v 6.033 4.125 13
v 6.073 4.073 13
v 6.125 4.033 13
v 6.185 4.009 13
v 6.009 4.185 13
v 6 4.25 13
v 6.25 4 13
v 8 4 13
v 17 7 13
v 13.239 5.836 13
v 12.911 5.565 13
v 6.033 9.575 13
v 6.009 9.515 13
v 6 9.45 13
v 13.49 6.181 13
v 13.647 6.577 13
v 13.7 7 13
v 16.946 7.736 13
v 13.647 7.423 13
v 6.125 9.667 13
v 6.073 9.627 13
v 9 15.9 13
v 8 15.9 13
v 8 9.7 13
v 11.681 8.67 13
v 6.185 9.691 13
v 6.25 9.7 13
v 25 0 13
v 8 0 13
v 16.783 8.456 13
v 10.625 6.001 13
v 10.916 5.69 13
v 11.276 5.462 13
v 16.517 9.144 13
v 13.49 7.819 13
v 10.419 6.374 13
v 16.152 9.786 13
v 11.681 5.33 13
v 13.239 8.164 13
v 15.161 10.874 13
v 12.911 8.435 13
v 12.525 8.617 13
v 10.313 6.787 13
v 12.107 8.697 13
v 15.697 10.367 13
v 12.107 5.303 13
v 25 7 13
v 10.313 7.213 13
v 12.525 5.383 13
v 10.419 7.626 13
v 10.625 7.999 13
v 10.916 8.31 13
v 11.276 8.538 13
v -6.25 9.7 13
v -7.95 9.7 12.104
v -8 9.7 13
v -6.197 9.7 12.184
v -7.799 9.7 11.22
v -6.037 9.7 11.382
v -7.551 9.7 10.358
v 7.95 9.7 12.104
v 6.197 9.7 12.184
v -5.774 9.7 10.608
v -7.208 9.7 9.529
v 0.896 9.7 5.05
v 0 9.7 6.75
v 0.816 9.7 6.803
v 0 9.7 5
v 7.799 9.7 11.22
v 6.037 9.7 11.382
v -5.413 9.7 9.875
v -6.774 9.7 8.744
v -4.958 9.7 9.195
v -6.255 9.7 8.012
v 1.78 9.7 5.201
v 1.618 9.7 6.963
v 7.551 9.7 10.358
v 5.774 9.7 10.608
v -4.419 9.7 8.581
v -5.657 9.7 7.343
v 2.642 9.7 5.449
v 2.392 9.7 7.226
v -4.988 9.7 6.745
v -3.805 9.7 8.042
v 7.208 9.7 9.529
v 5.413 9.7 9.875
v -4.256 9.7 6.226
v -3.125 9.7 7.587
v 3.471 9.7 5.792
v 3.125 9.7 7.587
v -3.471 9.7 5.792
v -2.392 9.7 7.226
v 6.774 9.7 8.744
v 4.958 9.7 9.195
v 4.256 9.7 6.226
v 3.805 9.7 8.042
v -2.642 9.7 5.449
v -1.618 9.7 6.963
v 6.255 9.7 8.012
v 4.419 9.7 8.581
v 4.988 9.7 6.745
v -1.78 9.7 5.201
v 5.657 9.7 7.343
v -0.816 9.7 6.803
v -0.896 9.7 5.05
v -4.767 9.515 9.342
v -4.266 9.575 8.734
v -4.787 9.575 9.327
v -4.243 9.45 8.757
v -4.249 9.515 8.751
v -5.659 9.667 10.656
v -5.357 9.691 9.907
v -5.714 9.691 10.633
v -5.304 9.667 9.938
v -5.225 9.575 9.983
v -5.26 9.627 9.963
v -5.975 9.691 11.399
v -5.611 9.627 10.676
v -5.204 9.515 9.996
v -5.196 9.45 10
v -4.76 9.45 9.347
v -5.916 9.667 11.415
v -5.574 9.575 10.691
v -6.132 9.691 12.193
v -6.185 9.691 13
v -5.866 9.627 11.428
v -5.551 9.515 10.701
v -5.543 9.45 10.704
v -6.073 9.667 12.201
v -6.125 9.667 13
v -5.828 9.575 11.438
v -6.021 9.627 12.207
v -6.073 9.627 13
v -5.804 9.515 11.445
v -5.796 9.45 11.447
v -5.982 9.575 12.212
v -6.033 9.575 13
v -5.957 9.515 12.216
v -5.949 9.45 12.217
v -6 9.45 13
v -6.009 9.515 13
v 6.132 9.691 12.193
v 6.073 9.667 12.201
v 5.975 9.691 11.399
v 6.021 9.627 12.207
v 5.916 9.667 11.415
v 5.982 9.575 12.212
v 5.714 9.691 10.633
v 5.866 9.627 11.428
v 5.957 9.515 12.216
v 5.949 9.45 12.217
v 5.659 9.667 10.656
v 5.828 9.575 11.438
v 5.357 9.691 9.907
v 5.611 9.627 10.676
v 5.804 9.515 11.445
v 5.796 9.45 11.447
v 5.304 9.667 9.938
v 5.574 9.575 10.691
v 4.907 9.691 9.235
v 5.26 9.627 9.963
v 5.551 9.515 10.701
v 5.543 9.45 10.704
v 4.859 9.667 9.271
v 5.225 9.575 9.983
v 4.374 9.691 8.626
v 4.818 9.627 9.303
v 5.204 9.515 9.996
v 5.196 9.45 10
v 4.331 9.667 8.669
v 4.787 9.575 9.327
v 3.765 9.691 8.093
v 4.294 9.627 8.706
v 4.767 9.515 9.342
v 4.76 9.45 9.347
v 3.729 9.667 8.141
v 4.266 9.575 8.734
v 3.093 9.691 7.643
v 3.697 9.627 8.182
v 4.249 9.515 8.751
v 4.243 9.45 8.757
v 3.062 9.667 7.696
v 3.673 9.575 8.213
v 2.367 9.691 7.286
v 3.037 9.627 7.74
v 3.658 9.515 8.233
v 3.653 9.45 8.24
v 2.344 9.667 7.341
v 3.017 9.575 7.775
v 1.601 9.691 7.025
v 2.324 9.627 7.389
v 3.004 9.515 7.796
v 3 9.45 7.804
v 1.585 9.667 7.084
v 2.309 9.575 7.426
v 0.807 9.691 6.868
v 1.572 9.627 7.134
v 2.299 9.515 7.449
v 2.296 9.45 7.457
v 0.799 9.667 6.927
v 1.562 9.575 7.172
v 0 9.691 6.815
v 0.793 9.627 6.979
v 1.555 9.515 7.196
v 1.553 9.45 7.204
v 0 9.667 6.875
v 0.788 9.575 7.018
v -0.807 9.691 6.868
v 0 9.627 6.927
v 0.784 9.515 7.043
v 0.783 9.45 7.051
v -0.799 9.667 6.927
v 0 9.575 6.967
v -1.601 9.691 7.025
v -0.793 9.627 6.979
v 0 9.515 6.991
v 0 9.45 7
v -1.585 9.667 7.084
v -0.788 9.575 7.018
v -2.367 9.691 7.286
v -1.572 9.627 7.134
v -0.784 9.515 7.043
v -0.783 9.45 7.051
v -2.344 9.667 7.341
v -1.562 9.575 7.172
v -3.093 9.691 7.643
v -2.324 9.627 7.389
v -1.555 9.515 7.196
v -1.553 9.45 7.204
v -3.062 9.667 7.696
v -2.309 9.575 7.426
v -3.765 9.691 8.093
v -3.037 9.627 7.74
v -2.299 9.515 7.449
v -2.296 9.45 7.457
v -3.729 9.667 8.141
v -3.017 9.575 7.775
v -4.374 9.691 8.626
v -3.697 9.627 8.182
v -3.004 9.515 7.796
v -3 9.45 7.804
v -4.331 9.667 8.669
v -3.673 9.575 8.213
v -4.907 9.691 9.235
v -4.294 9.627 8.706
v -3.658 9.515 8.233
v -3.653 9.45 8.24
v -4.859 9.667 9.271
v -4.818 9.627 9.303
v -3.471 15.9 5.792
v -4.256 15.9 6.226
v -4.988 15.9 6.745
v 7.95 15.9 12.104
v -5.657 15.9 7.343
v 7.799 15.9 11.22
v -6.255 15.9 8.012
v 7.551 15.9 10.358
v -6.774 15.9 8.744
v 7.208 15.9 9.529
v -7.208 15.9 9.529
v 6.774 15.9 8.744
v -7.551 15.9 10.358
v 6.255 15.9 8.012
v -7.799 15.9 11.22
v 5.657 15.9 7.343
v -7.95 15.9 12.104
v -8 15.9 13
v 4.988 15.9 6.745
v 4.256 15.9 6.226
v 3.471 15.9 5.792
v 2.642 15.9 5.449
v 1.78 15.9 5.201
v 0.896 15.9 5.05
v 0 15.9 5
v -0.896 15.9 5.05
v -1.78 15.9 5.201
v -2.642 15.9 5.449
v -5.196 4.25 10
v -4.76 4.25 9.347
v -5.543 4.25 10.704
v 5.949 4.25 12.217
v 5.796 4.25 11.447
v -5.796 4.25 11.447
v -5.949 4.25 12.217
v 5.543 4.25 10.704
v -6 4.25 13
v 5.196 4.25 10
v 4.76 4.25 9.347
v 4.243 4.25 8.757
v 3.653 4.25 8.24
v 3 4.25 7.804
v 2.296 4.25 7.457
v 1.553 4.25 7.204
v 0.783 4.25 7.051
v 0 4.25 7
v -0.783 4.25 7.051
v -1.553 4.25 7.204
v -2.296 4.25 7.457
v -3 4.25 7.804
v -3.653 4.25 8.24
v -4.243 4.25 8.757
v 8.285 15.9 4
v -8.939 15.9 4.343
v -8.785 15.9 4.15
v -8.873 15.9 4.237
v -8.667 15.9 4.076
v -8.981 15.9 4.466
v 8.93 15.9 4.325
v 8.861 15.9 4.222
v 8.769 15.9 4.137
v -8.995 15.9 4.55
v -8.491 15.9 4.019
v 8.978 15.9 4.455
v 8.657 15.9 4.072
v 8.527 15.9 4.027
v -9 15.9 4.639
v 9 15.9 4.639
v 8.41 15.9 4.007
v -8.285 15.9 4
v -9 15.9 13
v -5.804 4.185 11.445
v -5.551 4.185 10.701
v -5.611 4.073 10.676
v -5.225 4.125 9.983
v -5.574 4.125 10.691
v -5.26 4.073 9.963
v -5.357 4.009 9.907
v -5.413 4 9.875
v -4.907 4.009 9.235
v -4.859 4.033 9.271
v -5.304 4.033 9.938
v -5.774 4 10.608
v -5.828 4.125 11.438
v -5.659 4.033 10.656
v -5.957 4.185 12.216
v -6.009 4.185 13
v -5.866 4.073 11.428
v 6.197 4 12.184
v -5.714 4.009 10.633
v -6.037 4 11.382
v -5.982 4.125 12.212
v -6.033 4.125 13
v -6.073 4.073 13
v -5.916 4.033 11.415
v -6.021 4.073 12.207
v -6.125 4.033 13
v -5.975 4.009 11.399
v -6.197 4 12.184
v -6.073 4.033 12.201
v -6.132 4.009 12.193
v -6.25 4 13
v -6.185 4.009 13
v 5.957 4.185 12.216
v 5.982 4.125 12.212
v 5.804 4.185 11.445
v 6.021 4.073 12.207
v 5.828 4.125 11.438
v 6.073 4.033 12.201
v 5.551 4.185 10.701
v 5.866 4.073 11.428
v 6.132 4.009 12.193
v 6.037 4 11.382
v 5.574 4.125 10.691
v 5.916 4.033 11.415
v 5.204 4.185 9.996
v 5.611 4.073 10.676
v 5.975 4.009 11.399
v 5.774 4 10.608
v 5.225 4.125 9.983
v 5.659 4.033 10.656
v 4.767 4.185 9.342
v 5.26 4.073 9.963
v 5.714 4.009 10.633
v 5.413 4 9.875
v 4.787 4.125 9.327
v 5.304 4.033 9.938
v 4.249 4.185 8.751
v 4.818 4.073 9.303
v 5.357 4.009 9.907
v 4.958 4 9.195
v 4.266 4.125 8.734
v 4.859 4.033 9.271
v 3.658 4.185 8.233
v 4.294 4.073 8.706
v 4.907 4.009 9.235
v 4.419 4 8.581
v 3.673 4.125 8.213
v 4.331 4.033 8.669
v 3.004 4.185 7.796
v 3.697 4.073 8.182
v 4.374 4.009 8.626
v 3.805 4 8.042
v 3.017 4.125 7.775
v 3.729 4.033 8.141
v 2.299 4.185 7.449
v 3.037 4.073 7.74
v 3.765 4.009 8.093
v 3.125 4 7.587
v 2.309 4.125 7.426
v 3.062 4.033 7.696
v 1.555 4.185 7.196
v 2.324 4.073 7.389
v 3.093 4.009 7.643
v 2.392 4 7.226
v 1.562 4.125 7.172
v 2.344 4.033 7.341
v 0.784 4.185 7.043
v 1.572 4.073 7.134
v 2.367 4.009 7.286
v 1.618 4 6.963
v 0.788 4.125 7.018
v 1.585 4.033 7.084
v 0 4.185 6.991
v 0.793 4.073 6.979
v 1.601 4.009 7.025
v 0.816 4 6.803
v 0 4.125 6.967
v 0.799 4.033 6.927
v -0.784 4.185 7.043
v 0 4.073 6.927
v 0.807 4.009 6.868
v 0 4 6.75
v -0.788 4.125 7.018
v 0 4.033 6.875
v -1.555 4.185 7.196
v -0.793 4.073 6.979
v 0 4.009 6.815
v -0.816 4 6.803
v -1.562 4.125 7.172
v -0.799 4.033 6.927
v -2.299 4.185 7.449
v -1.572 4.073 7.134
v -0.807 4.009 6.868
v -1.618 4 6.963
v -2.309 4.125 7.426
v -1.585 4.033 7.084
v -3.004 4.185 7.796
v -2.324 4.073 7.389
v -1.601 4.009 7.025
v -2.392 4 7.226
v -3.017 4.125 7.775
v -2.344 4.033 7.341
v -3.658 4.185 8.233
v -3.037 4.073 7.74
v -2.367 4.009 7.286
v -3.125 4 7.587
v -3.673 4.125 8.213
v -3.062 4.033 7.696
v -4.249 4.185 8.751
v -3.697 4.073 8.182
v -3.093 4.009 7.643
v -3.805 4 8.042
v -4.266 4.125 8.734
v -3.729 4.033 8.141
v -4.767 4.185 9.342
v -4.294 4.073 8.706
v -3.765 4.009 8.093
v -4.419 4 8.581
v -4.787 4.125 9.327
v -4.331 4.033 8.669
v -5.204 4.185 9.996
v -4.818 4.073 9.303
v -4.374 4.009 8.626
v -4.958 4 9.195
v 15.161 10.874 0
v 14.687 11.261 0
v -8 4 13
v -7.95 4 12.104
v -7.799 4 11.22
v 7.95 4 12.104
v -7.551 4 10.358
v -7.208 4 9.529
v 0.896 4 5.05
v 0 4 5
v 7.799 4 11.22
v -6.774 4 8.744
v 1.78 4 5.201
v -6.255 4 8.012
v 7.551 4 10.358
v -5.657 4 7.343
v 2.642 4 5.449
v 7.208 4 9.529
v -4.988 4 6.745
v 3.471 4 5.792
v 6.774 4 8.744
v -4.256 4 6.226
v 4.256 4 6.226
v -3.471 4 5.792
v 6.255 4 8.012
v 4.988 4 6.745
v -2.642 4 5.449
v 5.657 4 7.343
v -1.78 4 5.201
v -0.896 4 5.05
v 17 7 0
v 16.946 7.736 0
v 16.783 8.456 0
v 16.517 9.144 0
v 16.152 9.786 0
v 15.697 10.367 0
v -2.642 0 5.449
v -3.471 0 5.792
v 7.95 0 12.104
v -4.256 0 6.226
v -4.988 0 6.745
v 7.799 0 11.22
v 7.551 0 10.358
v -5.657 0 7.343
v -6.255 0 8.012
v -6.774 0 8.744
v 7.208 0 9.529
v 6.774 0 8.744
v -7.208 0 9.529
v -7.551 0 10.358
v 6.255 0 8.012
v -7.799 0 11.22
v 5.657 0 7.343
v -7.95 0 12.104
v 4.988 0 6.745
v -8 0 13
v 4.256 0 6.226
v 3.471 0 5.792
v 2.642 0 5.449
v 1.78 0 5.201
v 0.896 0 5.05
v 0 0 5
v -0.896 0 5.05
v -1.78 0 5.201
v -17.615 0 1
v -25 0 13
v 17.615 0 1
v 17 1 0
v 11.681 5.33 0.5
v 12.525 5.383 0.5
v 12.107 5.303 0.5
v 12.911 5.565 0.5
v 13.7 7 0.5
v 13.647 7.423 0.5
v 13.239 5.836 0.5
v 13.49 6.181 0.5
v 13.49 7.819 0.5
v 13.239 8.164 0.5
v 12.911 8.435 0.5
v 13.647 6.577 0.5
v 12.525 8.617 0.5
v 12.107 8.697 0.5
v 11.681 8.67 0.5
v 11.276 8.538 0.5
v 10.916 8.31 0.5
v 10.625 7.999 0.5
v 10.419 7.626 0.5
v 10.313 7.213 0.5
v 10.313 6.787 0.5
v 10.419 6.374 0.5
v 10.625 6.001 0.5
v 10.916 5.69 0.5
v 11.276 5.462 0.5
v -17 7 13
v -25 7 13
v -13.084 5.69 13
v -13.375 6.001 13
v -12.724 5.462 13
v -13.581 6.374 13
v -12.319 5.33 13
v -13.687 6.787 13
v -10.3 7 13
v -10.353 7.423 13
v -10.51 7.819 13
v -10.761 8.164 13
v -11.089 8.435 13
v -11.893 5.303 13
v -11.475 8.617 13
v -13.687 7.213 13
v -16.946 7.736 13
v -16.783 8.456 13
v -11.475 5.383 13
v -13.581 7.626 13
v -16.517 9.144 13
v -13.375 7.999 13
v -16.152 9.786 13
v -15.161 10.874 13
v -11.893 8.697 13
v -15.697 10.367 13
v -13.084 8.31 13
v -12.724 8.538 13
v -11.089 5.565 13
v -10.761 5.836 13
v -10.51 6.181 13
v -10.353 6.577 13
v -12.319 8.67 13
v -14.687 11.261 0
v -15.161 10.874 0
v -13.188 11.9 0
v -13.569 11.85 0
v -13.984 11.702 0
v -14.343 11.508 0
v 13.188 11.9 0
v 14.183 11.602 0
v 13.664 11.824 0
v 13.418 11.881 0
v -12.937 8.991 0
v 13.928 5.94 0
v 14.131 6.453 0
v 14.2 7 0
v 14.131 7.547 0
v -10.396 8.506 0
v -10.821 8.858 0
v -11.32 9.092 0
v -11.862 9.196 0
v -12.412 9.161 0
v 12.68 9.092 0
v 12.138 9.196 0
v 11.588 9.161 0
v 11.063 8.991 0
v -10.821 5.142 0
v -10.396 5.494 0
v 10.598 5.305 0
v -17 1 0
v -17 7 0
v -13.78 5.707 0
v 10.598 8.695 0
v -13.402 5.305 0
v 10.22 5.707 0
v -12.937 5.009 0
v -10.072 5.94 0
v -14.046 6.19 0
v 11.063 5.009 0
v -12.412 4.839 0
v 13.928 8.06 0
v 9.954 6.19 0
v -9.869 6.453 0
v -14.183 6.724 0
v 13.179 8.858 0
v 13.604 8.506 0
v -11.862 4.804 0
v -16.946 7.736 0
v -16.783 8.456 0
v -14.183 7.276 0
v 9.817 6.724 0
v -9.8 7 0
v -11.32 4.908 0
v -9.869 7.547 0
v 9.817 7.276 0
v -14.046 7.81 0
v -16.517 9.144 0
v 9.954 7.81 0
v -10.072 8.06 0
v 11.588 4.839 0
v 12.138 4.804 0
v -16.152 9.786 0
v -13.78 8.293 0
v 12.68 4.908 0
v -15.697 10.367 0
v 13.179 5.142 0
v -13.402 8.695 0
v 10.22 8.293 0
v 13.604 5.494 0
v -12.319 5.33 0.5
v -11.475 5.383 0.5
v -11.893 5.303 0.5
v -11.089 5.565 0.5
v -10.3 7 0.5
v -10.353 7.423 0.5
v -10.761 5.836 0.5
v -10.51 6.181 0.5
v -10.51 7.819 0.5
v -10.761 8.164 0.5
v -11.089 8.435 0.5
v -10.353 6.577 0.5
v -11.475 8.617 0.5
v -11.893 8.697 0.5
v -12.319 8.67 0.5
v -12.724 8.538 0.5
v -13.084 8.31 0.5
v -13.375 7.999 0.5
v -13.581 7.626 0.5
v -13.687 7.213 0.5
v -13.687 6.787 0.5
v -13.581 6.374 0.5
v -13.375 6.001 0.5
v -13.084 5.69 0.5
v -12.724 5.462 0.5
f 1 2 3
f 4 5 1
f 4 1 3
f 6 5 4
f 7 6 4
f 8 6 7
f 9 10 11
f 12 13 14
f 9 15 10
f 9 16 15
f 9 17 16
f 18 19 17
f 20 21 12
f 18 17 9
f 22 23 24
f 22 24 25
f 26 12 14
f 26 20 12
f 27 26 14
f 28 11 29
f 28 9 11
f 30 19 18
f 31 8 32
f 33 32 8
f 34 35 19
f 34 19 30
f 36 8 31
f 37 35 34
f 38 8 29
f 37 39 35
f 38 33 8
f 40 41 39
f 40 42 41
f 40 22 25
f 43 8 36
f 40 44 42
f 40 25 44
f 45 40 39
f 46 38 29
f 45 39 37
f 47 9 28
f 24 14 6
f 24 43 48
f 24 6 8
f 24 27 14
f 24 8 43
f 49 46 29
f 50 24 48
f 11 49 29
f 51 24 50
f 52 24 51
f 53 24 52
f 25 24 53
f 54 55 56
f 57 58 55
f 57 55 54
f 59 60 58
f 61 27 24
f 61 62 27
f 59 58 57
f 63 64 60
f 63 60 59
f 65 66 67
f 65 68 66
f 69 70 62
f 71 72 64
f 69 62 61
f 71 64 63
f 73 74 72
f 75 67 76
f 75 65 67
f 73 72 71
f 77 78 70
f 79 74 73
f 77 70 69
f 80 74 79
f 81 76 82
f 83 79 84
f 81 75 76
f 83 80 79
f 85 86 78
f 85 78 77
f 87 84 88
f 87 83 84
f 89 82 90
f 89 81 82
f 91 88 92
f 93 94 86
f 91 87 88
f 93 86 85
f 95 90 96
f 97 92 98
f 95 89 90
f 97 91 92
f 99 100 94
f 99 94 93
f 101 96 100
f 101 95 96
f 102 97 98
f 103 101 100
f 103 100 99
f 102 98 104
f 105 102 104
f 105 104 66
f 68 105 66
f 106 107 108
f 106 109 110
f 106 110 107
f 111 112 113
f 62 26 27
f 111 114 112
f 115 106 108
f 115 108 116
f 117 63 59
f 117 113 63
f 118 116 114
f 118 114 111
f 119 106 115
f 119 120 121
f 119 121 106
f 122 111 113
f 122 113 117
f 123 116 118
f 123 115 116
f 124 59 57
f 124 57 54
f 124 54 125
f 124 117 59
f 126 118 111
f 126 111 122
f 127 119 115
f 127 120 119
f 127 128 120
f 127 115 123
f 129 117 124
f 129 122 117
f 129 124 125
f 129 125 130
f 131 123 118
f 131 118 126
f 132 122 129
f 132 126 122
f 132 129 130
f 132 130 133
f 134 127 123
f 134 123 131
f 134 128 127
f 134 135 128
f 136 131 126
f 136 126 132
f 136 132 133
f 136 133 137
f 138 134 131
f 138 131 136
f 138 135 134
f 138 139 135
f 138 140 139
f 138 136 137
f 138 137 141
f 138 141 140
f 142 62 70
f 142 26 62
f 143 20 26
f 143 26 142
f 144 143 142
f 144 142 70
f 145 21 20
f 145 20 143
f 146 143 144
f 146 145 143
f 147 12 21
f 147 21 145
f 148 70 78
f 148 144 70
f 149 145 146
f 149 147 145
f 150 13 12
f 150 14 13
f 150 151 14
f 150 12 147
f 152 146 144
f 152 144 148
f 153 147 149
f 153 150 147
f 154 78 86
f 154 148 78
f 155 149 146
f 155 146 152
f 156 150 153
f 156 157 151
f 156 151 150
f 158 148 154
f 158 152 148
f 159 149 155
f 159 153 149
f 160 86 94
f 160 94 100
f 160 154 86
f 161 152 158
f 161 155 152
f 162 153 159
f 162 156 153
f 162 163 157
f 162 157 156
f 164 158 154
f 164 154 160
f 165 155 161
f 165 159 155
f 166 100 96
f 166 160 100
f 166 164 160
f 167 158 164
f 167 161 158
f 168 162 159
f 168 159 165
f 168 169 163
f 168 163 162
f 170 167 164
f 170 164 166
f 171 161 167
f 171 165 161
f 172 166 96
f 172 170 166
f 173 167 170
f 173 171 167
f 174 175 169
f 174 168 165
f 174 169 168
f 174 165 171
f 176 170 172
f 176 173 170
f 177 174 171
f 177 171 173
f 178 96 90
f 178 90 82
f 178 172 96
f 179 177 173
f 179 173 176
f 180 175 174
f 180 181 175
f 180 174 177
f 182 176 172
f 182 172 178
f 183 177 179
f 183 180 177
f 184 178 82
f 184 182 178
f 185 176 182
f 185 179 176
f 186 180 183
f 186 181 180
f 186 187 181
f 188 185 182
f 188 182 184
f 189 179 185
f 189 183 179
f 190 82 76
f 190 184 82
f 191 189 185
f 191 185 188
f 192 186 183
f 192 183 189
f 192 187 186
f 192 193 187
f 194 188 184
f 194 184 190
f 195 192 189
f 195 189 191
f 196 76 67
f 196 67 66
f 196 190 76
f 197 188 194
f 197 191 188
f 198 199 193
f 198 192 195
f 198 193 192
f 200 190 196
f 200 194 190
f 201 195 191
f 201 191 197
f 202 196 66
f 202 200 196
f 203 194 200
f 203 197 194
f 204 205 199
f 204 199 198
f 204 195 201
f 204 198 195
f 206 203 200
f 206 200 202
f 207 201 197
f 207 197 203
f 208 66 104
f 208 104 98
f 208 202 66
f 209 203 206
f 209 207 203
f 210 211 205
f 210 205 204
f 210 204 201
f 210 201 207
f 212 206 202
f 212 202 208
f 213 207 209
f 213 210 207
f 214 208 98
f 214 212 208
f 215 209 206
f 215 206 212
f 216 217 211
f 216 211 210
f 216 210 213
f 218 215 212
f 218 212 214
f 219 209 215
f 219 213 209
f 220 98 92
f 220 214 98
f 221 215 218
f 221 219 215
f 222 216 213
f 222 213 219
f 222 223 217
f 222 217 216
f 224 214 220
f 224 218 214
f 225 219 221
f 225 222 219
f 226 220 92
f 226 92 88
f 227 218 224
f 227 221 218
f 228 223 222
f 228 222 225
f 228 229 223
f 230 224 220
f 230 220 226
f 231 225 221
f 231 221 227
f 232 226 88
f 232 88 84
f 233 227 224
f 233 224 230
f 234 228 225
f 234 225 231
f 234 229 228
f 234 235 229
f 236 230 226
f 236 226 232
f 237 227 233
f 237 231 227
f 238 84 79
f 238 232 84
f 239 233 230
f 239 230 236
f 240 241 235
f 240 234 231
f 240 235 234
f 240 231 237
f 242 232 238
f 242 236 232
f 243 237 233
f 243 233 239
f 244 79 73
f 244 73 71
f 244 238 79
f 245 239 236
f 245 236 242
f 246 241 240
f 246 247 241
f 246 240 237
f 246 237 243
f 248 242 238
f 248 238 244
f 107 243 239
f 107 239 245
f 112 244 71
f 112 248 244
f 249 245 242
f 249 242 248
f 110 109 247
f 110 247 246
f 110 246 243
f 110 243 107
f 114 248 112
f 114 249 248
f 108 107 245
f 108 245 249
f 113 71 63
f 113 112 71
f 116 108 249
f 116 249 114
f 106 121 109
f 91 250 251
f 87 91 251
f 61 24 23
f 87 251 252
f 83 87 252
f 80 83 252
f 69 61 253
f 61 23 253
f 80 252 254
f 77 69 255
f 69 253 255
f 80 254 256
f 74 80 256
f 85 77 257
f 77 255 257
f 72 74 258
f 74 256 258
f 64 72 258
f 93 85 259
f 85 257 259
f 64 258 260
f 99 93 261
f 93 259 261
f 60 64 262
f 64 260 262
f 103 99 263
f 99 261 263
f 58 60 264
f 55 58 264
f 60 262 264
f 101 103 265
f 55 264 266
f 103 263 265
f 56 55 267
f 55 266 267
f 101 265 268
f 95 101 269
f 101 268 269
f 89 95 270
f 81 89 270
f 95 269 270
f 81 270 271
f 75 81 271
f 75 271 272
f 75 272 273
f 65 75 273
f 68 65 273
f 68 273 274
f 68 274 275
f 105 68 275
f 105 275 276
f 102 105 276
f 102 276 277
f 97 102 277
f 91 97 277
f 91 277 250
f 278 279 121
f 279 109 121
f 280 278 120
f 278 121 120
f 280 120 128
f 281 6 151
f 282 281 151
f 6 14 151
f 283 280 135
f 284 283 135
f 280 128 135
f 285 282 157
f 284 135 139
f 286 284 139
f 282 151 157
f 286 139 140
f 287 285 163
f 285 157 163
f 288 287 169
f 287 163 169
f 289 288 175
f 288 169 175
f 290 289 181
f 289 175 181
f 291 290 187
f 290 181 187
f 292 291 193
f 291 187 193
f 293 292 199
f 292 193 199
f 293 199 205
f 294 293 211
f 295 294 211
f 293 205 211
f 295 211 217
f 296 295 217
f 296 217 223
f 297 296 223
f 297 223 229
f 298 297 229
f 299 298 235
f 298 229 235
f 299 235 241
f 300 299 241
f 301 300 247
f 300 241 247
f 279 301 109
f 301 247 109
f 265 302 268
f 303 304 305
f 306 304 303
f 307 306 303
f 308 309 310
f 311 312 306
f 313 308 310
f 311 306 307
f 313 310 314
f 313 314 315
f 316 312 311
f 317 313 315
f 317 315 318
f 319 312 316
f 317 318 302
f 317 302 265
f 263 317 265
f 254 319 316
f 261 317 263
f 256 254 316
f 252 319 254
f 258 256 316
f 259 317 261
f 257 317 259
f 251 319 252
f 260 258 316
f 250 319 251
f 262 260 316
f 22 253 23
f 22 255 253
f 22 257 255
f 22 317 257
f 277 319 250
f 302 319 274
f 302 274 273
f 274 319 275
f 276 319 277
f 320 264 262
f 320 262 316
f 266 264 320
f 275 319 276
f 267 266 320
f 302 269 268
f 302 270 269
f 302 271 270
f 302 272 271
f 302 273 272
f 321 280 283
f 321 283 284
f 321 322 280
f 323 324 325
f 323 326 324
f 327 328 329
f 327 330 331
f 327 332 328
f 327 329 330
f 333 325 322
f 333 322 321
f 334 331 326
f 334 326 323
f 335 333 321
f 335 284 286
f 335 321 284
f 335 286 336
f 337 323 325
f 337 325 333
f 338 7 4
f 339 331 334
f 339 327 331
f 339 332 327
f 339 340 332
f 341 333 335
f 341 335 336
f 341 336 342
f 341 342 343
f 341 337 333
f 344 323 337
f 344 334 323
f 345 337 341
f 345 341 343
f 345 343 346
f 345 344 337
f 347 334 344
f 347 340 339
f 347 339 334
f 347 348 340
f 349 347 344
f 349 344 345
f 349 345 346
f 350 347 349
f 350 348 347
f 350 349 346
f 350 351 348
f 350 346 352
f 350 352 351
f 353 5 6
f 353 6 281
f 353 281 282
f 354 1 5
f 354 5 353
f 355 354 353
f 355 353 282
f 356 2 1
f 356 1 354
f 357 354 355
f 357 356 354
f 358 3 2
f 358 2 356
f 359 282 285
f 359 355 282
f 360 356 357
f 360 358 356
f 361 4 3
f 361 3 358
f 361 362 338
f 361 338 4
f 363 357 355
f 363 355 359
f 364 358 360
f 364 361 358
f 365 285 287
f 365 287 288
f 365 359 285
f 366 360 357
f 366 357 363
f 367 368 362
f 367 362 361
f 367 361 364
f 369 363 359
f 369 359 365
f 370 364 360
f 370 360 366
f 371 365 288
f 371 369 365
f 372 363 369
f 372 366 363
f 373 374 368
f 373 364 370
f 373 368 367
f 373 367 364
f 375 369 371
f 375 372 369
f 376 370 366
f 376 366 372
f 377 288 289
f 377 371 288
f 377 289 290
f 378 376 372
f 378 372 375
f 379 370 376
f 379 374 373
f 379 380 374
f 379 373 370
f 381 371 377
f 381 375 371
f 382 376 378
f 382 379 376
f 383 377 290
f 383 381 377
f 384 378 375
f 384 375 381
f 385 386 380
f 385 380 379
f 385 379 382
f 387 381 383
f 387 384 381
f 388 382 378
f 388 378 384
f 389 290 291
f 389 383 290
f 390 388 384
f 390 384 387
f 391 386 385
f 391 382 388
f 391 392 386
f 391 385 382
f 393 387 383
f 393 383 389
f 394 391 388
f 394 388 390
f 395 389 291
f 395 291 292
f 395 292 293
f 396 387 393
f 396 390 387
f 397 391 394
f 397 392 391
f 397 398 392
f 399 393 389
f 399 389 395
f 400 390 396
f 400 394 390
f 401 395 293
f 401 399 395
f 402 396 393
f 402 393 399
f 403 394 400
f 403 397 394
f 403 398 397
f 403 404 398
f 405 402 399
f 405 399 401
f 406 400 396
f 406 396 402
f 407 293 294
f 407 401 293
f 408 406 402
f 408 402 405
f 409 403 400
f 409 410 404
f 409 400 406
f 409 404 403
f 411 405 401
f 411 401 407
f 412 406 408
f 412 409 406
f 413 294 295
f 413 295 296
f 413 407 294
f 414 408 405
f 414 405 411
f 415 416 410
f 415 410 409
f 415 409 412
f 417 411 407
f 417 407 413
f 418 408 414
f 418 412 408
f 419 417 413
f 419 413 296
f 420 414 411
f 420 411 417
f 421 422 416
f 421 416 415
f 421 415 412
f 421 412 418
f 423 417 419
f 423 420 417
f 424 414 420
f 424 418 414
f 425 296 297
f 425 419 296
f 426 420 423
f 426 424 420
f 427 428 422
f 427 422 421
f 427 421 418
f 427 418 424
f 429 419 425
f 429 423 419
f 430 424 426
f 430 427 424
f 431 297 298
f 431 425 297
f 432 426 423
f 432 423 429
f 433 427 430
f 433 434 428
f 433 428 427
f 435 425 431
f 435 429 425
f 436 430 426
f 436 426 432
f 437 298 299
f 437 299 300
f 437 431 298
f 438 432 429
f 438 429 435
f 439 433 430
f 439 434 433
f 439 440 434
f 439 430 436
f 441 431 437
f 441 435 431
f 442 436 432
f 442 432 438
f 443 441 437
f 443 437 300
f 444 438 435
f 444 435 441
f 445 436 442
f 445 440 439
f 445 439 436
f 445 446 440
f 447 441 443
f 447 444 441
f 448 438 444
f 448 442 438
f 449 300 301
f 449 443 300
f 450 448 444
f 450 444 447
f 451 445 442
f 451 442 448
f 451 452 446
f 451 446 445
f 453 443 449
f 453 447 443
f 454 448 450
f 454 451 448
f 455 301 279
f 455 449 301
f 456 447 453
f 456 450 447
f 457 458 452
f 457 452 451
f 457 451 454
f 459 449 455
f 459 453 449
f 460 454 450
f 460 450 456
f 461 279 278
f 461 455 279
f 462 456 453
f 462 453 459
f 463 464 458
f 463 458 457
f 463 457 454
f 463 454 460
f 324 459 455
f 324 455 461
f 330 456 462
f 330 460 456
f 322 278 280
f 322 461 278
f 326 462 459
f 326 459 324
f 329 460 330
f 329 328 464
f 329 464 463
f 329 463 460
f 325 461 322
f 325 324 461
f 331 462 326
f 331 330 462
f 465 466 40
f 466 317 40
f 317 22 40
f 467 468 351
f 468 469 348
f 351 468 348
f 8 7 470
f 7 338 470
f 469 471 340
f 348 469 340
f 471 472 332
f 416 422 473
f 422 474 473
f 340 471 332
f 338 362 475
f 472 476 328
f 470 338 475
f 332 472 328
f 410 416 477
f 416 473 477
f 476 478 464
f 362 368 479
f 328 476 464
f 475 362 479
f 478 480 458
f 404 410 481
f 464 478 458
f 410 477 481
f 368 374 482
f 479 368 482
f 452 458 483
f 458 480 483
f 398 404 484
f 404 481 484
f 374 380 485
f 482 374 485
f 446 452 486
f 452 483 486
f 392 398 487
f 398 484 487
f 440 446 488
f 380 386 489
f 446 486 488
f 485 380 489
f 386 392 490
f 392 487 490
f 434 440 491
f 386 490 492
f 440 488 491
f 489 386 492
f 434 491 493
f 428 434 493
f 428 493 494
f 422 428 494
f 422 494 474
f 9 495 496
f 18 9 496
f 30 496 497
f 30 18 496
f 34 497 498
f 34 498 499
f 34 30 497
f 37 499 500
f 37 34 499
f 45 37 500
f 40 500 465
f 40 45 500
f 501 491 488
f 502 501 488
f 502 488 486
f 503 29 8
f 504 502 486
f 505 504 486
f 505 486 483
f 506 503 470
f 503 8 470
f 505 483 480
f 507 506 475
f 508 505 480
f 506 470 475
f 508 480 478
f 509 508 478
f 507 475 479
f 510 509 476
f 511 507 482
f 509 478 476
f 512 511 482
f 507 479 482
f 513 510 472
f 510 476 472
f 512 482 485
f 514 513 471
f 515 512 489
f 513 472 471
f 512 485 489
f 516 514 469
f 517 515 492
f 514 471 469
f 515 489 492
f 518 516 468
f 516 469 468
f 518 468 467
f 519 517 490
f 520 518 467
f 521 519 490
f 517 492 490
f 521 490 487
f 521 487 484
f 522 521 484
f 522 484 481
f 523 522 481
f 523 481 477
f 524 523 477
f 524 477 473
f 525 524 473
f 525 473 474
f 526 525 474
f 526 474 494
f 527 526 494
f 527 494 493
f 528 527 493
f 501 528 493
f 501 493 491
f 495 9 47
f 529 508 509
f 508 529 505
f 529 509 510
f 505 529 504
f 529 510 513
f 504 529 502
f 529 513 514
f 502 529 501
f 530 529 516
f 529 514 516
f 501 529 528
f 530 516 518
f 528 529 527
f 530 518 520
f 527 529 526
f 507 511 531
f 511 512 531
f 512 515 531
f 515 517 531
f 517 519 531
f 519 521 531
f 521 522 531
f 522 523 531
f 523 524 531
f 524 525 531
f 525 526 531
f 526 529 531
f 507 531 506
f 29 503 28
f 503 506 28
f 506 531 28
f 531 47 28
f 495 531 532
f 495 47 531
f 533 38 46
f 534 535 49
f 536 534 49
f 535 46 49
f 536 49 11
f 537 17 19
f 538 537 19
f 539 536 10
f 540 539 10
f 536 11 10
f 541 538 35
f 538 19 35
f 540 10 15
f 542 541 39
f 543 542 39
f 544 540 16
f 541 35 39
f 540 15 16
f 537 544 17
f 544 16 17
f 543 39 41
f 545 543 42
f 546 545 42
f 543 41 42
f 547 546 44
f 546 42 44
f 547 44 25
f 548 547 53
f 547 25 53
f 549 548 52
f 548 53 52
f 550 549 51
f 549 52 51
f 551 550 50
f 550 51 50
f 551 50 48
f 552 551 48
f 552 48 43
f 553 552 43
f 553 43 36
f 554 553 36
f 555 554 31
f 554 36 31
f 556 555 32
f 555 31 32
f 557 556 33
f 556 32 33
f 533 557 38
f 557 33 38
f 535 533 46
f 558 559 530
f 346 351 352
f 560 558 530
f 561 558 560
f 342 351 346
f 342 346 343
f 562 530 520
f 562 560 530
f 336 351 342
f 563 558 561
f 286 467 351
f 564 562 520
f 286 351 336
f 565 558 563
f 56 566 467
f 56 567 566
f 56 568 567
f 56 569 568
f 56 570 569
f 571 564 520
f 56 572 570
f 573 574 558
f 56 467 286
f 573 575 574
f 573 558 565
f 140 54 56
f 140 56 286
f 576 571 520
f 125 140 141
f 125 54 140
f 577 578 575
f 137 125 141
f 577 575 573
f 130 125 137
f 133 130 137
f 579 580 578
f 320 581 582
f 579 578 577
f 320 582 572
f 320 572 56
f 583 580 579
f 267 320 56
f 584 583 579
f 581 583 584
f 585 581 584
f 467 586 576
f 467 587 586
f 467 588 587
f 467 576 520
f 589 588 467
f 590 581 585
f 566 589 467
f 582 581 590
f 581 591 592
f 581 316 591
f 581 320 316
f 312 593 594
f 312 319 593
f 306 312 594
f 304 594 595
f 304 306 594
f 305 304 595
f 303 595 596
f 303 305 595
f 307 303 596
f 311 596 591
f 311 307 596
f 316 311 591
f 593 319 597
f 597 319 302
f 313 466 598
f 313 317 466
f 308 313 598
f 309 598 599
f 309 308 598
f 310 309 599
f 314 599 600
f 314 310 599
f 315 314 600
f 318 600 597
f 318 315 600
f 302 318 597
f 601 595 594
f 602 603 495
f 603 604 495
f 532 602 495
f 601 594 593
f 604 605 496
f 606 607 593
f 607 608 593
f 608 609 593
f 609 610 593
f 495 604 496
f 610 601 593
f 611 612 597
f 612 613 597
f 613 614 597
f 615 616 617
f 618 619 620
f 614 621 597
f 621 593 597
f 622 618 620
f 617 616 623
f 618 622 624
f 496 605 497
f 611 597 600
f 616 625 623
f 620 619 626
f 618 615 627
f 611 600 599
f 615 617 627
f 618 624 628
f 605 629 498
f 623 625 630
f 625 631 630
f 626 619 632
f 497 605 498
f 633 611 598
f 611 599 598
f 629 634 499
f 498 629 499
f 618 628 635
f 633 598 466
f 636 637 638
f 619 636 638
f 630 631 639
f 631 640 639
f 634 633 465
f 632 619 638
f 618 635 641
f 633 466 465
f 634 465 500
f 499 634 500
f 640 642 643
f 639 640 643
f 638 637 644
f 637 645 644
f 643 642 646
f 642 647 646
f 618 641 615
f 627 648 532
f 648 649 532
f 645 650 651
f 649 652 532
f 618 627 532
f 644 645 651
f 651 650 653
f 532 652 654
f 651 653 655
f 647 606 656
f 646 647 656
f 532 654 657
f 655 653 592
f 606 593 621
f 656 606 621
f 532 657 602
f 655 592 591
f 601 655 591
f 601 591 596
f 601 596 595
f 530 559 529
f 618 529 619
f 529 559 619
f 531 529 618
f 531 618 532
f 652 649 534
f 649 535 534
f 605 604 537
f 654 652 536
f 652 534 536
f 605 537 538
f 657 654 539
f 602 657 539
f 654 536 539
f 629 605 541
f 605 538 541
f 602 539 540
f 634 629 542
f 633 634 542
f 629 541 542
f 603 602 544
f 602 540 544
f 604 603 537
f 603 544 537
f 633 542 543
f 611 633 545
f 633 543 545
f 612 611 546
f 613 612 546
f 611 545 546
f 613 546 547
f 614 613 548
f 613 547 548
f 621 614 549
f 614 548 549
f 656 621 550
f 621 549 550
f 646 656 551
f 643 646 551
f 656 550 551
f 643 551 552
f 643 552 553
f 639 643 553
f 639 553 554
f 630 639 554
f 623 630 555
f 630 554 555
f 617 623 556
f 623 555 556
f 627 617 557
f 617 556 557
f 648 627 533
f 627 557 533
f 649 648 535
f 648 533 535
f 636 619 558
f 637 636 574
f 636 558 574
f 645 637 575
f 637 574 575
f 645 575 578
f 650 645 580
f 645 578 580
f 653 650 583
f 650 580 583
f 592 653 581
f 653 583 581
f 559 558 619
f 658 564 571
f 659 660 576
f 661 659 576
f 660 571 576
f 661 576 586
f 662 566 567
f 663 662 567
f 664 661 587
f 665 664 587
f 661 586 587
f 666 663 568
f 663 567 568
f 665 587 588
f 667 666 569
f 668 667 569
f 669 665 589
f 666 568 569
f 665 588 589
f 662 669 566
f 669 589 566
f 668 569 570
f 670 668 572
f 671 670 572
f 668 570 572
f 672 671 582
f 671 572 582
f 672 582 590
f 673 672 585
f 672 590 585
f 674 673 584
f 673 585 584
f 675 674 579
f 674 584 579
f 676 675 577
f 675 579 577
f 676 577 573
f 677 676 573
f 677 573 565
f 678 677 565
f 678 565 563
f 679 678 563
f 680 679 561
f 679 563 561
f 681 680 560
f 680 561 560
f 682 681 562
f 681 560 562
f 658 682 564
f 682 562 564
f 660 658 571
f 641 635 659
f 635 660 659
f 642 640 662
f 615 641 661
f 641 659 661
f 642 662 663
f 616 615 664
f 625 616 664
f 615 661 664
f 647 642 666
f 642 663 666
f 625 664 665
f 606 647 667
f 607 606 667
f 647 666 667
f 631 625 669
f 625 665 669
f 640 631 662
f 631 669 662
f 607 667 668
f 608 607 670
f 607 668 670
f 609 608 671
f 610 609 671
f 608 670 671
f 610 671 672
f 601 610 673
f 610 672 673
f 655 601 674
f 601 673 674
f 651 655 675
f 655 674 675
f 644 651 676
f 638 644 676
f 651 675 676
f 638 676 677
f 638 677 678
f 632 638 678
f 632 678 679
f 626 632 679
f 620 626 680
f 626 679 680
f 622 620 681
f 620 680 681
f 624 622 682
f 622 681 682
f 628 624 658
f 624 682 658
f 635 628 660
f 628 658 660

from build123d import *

# Parameters (mm, degrees)
CYLINDER005_R          = 1.7
CYLINDER005_DEPTH      = 20
CYLINDER004_R          = 1.7
CYLINDER004_DEPTH      = 36.75
CYLINDER003_R          = 1.7
CYLINDER003_DEPTH      = 39.75
CYLINDER006_R          = 1.7
CYLINDER006_DEPTH      = 20
CYLINDER001_R          = 8
CYLINDER001_DEPTH      = 5
CYLINDER001_ROLL_ANGLE = -90
CYLINDER_R             = 6
CYLINDER_DEPTH         = 30
CYLINDER_ROLL_ANGLE    = -90
CYLINDER002_R          = 8
CYLINDER002_DEPTH      = 12
CYLINDER002_ROLL_ANGLE = -90
BOX_W                  = 50
BOX_H                  = 15.9
BOX_DEPTH              = 13
POCKET_DEPTH           = 121.108539
CHAMFER_SIZE           = 4
FILLET_R               = 1
POCKET001_DEPTH        = 115.108539
CHAMFER001_SIZE        = 1
CHAMFER002_SIZE        = 0.5
FILLET001_R            = 0.25


with BuildPart() as cilindro005:
    # Cylinder005 → Cylinder005 (new body)
    with BuildSketch(Plane(origin=(-12, 7, 11), x_dir=(1, 0, 0), z_dir=(0, 0, 1))):
        Circle(CYLINDER005_R)
    extrude(amount=CYLINDER005_DEPTH)


with BuildPart() as cilindro004:
    # Cylinder004 → Cylinder004 (new body)
    with BuildSketch(Plane(origin=(-12, 7, 0), x_dir=(1, 0, 0), z_dir=(0, 0, 1))):
        Circle(CYLINDER004_R)
    extrude(amount=CYLINDER004_DEPTH)


with BuildPart() as cilindro003:
    # Cylinder003 → Cylinder003 (new body)
    with BuildSketch(Plane(origin=(12, 7, 0), x_dir=(1, 0, 0), z_dir=(0, 0, 1))):
        Circle(CYLINDER003_R)
    extrude(amount=CYLINDER003_DEPTH)


with BuildPart() as tornillos:
    # Cylinder006 → Cylinder006 (new body)
    with BuildSketch(Plane(origin=(12, 7, 11), x_dir=(1, 0, 0), z_dir=(0, 0, 1))):
        Circle(CYLINDER006_R)
    extrude(amount=CYLINDER006_DEPTH)

    # Fusion001: union Cilindro005, Cilindro004, Cilindro003
    add(cilindro005.part)
    add(cilindro004.part)
    add(cilindro003.part)


with BuildPart() as cilindro001:
    # Cylinder001 → Cylinder001 (new body)
    with BuildSketch(Plane.XY):
        Circle(CYLINDER001_R)
    extrude(amount=CYLINDER001_DEPTH)


with BuildPart() as cilindro001_1:
    # Cylinder001 roll: moved
    add(cilindro001.part.rotate(Axis((0, 0, 0), (1, 0, 0)), CYLINDER001_ROLL_ANGLE))


with BuildPart() as cilindro001_2:
    # Cylinder001 placement: moved
    add(cilindro001_1.part.moved(Location((0, -1, 13))))


with BuildPart() as cilindro:
    # Cylinder → Cylinder (new body)
    with BuildSketch(Plane.XY):
        Circle(CYLINDER_R)
    extrude(amount=CYLINDER_DEPTH)


with BuildPart() as cilindro_1:
    # Cylinder roll: moved
    add(cilindro.part.rotate(Axis((0, 0, 0), (1, 0, 0)), CYLINDER_ROLL_ANGLE))


with BuildPart() as cilindro_2:
    # Cylinder placement: moved
    add(cilindro_1.part.moved(Location((0, -5, 13))))


with BuildPart() as cabeza_hot_end:
    # Cylinder002 → Cylinder002 (new body)
    with BuildSketch(Plane.XY):
        Circle(CYLINDER002_R)
    extrude(amount=CYLINDER002_DEPTH)


with BuildPart() as cabeza_hot_end_1:
    # Cylinder002 roll: moved
    add(cabeza_hot_end.part.rotate(Axis((0, 0, 0), (1, 0, 0)), CYLINDER002_ROLL_ANGLE))


with BuildPart() as cabeza_hot_end_2:
    # Cylinder002 placement: moved
    add(cabeza_hot_end_1.part.moved(Location((0, 9.7, 13))))

    # Fusion: union Cilindro001, Cilindro
    add(cilindro001_2.part)
    add(cilindro_2.part)


with BuildPart() as fillet001:
    # Box → Box (new body)
    with BuildSketch(Plane(origin=(-25, 0, 0), x_dir=(1, 0, 0), z_dir=(0, 0, 1))):
        with Locations((25, 7.95)):
            Rectangle(BOX_W, BOX_H)
    extrude(amount=BOX_DEPTH)

    # Cut: cut cabeza_hot_end
    add(cabeza_hot_end_2.part, mode=Mode.SUBTRACT)

    # Cut001: cut tornillos
    add(tornillos.part, mode=Mode.SUBTRACT)

    # Sketch → Pocket (cut, through all)
    with BuildSketch(Plane.XY.offset(13)):
        with BuildLine():
            ThreePointArc((17, 7), (16.5168, 9.144415), (15.160594, 10.874357))
            Line((9, 15.9), (15.160594, 10.874357))
            Line((25, 15.9), (9, 15.9))
            Line((25, 7), (25, 15.9))
            Line((17, 7), (25, 7))
        make_face()
    pocket = extrude(amount=-POCKET_DEPTH, mode=Mode.SUBTRACT)

    # Mirrored: Pocket across Sketch V_Axis
    add(pocket.mirror(Plane(origin=(0, 0, 13), x_dir=(0, 0, 1), z_dir=(1, 0, 0))), mode=Mode.SUBTRACT)

    # Chamfer
    chamfer_edges = [fillet001.edges().sort_by_distance(p)[0] for p in [
        (0, 15.9, 0),
    ]]
    chamfer(chamfer_edges, length=CHAMFER_SIZE)

    # Fillet
    fillet_edges = [fillet001.edges().sort_by_distance(p)[0] for p in [
        (11.451664, 13.9, 2),
        (-11.451664, 13.9, 2),
    ]]
    fillet(fillet_edges, radius=FILLET_R)

    # Sketch002 → Pocket001 (cut, through all)
    with BuildSketch(Plane(origin=(0, 7, 0), x_dir=(-1, 0, 0), z_dir=(0, 1, 0))):
        Polygon((-25, 13), (-17, 0), (-25, 0), align=None)
    pocket001 = extrude(amount=-POCKET001_DEPTH, mode=Mode.SUBTRACT)

    # Mirrored001: Pocket001 across Sketch002 V_Axis
    add(pocket001.mirror(Plane(origin=(0, 7, 0), x_dir=(0, 1, 0), z_dir=(-1, 0, 0))), mode=Mode.SUBTRACT)

    # Chamfer001
    chamfer001_edges = [fillet001.edges().sort_by_distance(p)[0] for p in [
        (0, 0, 0),
    ]]
    chamfer(chamfer001_edges, length=CHAMFER001_SIZE)

    # Chamfer002
    chamfer002_edges = [fillet001.edges().sort_by_distance(p)[0] for p in [
        (10.3, 7, 0),
        (-13.7, 7, 0),
    ]]
    chamfer(chamfer002_edges, length=CHAMFER002_SIZE)

    # Fillet001
    fillet001_edges = [fillet001.edges().sort_by_distance(p)[0] for p in [
        (0, 9.7, 7),
        (0, 4, 7),
    ]]
    fillet(fillet001_edges, radius=FILLET001_R)


solid = fillet001.part
